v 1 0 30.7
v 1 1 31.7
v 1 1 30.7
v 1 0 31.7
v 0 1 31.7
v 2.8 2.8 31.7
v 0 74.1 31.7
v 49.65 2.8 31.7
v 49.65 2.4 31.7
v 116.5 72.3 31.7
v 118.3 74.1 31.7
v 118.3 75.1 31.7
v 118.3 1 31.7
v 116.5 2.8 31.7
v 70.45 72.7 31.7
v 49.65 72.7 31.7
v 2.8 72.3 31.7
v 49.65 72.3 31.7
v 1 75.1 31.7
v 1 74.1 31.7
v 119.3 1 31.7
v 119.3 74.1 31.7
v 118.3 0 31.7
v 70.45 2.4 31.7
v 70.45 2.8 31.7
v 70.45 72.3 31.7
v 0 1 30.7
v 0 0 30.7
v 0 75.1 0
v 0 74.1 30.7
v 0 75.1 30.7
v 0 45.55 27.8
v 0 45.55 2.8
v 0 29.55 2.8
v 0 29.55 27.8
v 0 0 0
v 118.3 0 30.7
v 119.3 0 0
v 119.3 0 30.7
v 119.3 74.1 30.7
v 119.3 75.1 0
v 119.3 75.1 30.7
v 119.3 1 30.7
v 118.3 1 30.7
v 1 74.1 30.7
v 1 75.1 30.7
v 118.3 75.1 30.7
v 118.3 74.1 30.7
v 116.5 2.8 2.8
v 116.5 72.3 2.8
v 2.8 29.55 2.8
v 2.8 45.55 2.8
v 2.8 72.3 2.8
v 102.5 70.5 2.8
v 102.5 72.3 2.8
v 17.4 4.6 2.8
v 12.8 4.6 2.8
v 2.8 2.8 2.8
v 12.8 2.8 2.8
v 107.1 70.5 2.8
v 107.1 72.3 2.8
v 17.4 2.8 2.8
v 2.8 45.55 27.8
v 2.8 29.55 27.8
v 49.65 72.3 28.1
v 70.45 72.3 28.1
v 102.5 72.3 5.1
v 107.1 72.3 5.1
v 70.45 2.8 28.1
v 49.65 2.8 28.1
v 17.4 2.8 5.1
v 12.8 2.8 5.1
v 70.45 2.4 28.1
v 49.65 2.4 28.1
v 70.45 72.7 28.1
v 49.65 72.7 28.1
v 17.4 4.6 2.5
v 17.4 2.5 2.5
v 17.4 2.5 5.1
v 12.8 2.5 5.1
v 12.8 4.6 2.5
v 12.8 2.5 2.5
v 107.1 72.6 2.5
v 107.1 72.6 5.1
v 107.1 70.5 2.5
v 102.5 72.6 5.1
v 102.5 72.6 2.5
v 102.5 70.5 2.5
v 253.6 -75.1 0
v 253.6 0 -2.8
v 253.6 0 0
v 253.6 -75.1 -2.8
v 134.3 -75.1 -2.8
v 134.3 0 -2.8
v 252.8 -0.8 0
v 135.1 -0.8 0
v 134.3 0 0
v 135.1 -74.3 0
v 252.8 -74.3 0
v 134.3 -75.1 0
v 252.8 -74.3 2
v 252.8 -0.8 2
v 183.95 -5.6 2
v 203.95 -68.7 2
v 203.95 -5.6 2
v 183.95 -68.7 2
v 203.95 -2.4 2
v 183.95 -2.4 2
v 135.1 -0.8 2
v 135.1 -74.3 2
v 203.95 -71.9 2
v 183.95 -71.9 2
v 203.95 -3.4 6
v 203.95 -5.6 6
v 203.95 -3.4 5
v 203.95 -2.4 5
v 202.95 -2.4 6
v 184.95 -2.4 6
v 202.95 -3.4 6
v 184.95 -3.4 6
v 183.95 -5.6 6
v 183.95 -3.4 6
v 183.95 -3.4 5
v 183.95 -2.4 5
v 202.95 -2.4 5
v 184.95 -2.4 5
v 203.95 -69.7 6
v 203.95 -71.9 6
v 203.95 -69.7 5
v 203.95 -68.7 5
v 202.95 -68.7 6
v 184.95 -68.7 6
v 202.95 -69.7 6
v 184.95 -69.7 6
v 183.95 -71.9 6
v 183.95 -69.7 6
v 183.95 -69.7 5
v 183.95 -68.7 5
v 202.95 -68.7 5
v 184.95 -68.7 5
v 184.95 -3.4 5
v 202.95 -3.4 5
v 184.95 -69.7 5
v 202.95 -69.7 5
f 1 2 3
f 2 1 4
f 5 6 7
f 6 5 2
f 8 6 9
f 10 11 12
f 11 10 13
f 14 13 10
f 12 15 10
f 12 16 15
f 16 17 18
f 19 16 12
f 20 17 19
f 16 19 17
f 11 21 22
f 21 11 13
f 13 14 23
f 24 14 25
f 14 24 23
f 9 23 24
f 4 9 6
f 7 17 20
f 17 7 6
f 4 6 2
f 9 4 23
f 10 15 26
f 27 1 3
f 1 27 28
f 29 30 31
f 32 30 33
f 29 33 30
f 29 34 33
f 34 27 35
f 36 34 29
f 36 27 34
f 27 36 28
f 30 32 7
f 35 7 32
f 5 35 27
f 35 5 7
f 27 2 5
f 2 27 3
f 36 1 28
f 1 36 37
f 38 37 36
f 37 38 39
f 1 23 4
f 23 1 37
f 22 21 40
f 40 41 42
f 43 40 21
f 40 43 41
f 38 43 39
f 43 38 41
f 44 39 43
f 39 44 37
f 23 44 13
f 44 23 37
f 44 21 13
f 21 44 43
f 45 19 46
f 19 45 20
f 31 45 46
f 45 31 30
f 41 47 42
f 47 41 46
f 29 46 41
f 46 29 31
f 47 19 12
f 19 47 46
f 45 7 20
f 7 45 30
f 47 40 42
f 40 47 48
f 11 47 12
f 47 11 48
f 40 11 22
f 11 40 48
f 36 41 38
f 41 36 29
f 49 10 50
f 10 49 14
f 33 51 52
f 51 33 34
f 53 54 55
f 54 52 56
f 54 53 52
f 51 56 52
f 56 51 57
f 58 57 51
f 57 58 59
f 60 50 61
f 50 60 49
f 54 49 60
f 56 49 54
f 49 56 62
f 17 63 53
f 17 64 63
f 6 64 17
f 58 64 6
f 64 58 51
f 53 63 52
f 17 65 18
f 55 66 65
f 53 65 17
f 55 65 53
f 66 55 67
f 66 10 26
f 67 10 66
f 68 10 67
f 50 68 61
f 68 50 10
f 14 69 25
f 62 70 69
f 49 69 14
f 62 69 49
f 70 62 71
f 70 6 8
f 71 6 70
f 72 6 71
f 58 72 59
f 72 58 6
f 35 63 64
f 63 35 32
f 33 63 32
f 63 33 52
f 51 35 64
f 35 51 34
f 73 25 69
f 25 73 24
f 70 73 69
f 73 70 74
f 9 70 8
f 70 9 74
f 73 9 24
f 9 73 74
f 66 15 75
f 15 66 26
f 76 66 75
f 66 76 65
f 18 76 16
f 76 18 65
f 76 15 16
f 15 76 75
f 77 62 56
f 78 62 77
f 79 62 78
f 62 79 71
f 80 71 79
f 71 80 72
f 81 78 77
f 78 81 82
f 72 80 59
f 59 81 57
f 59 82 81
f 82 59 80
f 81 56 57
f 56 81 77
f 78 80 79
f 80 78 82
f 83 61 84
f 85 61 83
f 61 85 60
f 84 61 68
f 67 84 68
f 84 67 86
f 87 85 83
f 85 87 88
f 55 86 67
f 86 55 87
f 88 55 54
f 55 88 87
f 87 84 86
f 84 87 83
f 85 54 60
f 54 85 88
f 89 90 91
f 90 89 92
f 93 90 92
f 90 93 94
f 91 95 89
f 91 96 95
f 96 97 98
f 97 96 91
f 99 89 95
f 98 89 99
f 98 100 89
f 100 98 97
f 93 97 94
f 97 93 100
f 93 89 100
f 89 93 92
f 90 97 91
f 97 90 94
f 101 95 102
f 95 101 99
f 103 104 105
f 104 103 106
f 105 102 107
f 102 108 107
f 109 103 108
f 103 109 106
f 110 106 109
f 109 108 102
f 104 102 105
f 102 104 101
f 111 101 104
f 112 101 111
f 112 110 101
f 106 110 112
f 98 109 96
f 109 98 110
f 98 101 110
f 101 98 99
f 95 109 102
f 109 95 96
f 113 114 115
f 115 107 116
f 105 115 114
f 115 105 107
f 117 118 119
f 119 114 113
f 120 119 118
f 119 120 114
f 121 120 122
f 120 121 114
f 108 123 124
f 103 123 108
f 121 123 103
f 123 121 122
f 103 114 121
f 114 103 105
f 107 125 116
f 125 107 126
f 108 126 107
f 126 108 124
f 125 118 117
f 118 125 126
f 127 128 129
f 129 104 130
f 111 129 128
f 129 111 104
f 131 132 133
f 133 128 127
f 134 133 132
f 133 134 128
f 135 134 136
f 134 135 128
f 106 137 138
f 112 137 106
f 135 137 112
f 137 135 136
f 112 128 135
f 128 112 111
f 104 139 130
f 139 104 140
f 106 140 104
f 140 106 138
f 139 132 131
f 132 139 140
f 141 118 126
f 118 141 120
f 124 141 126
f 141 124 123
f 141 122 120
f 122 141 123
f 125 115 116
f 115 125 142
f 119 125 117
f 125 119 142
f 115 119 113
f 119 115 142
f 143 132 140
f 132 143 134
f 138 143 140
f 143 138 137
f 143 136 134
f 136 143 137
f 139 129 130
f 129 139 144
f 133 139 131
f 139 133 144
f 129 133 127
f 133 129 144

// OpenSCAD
$fn = 100;union() {
	difference() {
		cube(size = [119.3, 75.1, 31.7]);
		translate(v = [2.8, 2.8, 2.8]) {
			cube(size = [113.7, 69.5, 28.9]);
		}
		translate(v = [0, 29.549999999999997, 2.8]) {
			cube(size = [2.8, 16, 25]);
		}
		translate(v = [49.65, 2.4, 28.1]) {
			cube(size = [20.8, 4.0, 6.8]);
		}
		translate(v = [49.65, 68.69999999999999, 28.1]) {
			cube(size = [20.8, 4.0, 6.8]);
		}
		union() {
			translate(v = [0, 0, 30.7]) {
				cube(size = [1.0, 1.0, 1.0]);
			}
			translate(v = [118.3, 0, 30.7]) {
				cube(size = [1.0, 1.0, 1.0]);
			}
			translate(v = [0, 74.1, 30.7]) {
				cube(size = [1.0, 1.0, 1.0]);
			}
			translate(v = [118.3, 74.1, 30.7]) {
				cube(size = [1.0, 1.0, 1.0]);
			}
		}
		translate(v = [12.8, 2.5, 2.5]) {
			cube(size = [4.6, 2.1, 2.6]);
		}
		translate(v = [102.5, 70.5, 2.5]) {
			cube(size = [4.6, 2.1, 2.6]);
		}
	}
	translate(v = [134.3, 0, 0]) {
		rotate(a = [180, 0, 0]) {
			union() {
				difference() {
					union() {
						cube(size = [119.3, 75.1, 2.8]);
						translate(v = [0.8, 0.8, -2.0]) {
							cube(size = [117.7, 73.5, 2.0]);
						}
						translate(v = [49.65, 2.4, -6.0]) {
							cube(size = [20, 3.2, 6.0]);
						}
						translate(v = [49.65, 68.69999999999999, -6.0]) {
							cube(size = [20, 3.2, 6.0]);
						}
						translate(v = [49.65, 2.4, -6.0]) {
							cube(size = [20, 3.2, 2.8]);
						}
						translate(v = [49.65, 68.69999999999999, -6.0]) {
							cube(size = [20, 3.2, 2.8]);
						}
					}
					union() {
						translate(v = [49.65, 2.4, -6.0]) {
							cube(size = [1.0, 1.0, 1.0]);
						}
						translate(v = [68.65, 2.4, -6.0]) {
							cube(size = [1.0, 1.0, 1.0]);
						}
						translate(v = [49.65, 68.69999999999999, -6.0]) {
							cube(size = [1.0, 1.0, 1.0]);
						}
						translate(v = [68.65, 68.69999999999999, -6.0]) {
							cube(size = [1.0, 1.0, 1.0]);
						}
					}
				}
				translate(v = [12.8, 2.8, -2]) {
					cube(size = [4, 1.5, 2]);
				}
				translate(v = [102.5, 70.8, -2]) {
					cube(size = [4, 1.5, 2]);
				}
			}
		}
	}
}
